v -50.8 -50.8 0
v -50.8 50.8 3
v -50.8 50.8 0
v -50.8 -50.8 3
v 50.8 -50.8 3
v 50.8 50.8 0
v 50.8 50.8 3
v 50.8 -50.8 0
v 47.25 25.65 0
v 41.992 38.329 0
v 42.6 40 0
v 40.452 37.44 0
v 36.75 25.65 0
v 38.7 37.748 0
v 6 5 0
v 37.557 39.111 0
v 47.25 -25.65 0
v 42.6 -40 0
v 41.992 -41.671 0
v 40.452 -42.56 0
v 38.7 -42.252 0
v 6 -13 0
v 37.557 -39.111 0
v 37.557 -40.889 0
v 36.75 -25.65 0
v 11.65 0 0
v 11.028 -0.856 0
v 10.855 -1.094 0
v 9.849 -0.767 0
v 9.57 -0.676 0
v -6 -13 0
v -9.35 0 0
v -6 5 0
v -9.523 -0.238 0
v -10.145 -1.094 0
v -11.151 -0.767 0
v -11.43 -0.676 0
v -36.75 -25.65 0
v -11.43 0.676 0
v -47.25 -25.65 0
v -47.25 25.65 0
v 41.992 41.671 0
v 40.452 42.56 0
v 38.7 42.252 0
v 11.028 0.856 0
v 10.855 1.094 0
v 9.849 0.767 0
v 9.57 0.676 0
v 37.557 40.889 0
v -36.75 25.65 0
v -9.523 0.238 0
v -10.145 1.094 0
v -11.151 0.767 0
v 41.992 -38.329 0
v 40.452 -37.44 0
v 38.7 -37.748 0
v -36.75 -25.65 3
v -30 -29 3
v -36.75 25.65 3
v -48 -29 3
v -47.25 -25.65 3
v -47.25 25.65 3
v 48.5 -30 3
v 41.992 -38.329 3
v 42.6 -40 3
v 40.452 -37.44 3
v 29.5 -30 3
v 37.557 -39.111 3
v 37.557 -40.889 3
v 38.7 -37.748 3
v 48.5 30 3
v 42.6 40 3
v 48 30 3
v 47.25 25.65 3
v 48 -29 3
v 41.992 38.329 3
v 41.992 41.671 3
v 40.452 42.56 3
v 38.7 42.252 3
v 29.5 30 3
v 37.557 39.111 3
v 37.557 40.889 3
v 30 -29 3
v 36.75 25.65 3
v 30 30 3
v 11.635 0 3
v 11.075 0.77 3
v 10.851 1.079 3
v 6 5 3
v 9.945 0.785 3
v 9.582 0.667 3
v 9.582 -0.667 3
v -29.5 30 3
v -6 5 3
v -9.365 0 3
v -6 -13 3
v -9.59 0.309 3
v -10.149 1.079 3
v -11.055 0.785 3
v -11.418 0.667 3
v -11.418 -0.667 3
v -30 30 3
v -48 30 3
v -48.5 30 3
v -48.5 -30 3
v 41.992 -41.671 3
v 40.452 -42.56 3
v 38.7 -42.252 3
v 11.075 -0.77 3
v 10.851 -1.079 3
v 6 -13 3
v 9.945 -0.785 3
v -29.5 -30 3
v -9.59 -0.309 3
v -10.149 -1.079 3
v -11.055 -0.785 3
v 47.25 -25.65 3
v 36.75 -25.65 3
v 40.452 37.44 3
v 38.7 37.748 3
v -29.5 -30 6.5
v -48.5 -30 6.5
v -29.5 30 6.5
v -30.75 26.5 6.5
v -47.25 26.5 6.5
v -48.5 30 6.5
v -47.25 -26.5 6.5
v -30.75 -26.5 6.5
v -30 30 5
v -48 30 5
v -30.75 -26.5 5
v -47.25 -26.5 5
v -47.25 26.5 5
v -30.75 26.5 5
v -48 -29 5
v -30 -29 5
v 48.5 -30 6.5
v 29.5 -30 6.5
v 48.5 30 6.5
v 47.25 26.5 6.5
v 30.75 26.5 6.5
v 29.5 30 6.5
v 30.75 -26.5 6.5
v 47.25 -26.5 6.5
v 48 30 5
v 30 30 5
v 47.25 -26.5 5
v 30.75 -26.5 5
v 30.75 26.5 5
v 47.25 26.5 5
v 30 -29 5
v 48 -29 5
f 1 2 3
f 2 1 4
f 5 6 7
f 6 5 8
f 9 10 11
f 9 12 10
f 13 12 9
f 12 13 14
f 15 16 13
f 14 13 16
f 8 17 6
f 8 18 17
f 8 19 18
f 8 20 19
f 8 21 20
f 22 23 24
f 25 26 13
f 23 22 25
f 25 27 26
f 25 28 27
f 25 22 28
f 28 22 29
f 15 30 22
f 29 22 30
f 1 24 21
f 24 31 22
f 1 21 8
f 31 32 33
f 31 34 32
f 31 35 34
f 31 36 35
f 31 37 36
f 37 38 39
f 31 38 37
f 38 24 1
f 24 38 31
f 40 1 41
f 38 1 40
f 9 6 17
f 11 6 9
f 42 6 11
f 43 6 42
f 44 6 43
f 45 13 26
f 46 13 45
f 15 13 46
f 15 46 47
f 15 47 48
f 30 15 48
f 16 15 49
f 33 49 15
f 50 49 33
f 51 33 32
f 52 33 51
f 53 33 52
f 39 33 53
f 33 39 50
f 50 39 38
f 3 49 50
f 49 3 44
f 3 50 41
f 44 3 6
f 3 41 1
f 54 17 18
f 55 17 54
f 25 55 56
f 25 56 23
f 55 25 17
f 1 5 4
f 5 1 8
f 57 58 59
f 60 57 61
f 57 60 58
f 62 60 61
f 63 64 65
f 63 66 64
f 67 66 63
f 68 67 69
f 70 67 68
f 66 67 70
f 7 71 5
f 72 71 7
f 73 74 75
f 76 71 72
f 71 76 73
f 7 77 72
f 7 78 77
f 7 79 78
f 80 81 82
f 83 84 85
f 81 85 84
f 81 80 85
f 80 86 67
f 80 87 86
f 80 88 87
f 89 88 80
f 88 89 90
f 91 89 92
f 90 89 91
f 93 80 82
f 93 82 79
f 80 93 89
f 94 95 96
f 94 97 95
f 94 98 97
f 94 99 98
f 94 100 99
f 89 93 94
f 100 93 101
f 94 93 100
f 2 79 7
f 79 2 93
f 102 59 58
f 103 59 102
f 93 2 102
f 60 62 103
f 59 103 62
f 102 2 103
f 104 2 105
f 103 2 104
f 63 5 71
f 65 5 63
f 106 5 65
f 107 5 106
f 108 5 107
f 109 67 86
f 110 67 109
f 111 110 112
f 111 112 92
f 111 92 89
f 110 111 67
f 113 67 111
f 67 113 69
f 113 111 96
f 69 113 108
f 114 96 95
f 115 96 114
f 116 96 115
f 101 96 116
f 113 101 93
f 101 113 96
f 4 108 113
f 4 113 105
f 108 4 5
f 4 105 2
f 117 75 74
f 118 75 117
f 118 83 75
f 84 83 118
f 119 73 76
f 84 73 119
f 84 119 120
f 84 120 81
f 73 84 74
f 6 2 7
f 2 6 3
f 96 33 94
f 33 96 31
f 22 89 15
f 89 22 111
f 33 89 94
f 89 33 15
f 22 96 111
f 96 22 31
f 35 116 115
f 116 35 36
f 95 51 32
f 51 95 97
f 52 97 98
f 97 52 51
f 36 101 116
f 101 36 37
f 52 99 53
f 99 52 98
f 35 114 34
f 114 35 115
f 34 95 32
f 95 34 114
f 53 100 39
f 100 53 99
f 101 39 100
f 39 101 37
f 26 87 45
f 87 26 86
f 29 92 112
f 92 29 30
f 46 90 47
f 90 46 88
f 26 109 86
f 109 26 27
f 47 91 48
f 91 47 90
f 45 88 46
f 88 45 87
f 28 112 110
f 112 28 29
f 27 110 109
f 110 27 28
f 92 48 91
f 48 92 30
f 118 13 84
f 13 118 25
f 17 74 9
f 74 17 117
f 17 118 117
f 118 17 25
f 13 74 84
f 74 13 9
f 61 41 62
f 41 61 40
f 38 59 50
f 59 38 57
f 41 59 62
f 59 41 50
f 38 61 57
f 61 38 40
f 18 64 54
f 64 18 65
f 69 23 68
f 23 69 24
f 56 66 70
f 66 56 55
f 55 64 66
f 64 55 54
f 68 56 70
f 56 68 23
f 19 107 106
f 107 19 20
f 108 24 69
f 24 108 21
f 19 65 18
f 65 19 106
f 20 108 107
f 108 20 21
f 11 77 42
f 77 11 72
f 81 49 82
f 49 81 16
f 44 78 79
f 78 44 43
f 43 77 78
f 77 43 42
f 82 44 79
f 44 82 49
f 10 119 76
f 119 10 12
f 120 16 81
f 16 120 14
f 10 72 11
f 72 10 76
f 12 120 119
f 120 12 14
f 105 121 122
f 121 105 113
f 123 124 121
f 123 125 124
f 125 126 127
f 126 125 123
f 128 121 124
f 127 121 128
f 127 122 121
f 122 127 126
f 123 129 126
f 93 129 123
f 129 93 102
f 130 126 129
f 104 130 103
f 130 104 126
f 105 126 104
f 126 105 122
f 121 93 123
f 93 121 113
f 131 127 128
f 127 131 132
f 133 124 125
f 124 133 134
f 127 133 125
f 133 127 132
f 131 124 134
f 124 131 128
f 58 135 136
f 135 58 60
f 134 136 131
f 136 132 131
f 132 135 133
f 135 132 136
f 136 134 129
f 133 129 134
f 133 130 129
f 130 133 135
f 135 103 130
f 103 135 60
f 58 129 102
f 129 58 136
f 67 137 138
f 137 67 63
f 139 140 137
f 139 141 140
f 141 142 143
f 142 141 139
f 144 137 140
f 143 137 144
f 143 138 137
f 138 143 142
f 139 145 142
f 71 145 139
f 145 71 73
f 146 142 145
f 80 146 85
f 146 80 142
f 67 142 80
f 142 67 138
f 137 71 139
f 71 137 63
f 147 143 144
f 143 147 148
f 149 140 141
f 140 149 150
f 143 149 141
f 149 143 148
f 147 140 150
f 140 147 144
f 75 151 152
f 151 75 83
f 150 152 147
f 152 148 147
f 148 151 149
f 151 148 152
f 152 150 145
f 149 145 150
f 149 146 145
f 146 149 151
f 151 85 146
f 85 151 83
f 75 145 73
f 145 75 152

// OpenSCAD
//camera holder

cover_plate();

module cover_plate() {
difference() {
    ground_plate();
//cut-out Pi camera
    translate([0, -4, -10]) cube([12, 18, 40], center = true);
//holes for camera screws
    translate([-10.5, 0, -10]) cylinder(40, 1.2);
    translate([10.5, 0, -10]) cylinder(40, 1.2);
//cut-outs for LED strips
    translate([42, 0, -10]) cube ([10.5, 51.3, 40], center = true);
    translate([-42, 0, -10]) cube ([10.5, 51.3, 40], center = true);
//holes for screws to catch the cover plate
    translate([40, -40, 0]) cylinder(r=2.6, h=3);
    translate([40, 40, 0]) cylinder(r=2.6, h=3);
}
//holder for diffusing foils
translate([-39, 0, 4]) rotate([0, 0, 90]) diffusor_carrier();
translate([39, 0, 4]) rotate([0, 0, 90]) diffusor_carrier();
}
module ground_plate() {
    linear_extrude(height = 3, scale = 1) rectangular();
}
module rectangular(center=true) {
    a = 50.8;
    b = 50.8;
    polygon(points=[[-a,-b],[a,-b],[a,b],[-a,b]]); 
   }
module diffusor_carrier() {
difference() {
    cube([60, 19, 5], center=true);
//cut-out for LED strip
    cube ([53, 16.5, 40], center = true);
//slit for diffusor foil
    translate([2, 0, 0]) cube([62, 18, 2], center=true);
}
}
